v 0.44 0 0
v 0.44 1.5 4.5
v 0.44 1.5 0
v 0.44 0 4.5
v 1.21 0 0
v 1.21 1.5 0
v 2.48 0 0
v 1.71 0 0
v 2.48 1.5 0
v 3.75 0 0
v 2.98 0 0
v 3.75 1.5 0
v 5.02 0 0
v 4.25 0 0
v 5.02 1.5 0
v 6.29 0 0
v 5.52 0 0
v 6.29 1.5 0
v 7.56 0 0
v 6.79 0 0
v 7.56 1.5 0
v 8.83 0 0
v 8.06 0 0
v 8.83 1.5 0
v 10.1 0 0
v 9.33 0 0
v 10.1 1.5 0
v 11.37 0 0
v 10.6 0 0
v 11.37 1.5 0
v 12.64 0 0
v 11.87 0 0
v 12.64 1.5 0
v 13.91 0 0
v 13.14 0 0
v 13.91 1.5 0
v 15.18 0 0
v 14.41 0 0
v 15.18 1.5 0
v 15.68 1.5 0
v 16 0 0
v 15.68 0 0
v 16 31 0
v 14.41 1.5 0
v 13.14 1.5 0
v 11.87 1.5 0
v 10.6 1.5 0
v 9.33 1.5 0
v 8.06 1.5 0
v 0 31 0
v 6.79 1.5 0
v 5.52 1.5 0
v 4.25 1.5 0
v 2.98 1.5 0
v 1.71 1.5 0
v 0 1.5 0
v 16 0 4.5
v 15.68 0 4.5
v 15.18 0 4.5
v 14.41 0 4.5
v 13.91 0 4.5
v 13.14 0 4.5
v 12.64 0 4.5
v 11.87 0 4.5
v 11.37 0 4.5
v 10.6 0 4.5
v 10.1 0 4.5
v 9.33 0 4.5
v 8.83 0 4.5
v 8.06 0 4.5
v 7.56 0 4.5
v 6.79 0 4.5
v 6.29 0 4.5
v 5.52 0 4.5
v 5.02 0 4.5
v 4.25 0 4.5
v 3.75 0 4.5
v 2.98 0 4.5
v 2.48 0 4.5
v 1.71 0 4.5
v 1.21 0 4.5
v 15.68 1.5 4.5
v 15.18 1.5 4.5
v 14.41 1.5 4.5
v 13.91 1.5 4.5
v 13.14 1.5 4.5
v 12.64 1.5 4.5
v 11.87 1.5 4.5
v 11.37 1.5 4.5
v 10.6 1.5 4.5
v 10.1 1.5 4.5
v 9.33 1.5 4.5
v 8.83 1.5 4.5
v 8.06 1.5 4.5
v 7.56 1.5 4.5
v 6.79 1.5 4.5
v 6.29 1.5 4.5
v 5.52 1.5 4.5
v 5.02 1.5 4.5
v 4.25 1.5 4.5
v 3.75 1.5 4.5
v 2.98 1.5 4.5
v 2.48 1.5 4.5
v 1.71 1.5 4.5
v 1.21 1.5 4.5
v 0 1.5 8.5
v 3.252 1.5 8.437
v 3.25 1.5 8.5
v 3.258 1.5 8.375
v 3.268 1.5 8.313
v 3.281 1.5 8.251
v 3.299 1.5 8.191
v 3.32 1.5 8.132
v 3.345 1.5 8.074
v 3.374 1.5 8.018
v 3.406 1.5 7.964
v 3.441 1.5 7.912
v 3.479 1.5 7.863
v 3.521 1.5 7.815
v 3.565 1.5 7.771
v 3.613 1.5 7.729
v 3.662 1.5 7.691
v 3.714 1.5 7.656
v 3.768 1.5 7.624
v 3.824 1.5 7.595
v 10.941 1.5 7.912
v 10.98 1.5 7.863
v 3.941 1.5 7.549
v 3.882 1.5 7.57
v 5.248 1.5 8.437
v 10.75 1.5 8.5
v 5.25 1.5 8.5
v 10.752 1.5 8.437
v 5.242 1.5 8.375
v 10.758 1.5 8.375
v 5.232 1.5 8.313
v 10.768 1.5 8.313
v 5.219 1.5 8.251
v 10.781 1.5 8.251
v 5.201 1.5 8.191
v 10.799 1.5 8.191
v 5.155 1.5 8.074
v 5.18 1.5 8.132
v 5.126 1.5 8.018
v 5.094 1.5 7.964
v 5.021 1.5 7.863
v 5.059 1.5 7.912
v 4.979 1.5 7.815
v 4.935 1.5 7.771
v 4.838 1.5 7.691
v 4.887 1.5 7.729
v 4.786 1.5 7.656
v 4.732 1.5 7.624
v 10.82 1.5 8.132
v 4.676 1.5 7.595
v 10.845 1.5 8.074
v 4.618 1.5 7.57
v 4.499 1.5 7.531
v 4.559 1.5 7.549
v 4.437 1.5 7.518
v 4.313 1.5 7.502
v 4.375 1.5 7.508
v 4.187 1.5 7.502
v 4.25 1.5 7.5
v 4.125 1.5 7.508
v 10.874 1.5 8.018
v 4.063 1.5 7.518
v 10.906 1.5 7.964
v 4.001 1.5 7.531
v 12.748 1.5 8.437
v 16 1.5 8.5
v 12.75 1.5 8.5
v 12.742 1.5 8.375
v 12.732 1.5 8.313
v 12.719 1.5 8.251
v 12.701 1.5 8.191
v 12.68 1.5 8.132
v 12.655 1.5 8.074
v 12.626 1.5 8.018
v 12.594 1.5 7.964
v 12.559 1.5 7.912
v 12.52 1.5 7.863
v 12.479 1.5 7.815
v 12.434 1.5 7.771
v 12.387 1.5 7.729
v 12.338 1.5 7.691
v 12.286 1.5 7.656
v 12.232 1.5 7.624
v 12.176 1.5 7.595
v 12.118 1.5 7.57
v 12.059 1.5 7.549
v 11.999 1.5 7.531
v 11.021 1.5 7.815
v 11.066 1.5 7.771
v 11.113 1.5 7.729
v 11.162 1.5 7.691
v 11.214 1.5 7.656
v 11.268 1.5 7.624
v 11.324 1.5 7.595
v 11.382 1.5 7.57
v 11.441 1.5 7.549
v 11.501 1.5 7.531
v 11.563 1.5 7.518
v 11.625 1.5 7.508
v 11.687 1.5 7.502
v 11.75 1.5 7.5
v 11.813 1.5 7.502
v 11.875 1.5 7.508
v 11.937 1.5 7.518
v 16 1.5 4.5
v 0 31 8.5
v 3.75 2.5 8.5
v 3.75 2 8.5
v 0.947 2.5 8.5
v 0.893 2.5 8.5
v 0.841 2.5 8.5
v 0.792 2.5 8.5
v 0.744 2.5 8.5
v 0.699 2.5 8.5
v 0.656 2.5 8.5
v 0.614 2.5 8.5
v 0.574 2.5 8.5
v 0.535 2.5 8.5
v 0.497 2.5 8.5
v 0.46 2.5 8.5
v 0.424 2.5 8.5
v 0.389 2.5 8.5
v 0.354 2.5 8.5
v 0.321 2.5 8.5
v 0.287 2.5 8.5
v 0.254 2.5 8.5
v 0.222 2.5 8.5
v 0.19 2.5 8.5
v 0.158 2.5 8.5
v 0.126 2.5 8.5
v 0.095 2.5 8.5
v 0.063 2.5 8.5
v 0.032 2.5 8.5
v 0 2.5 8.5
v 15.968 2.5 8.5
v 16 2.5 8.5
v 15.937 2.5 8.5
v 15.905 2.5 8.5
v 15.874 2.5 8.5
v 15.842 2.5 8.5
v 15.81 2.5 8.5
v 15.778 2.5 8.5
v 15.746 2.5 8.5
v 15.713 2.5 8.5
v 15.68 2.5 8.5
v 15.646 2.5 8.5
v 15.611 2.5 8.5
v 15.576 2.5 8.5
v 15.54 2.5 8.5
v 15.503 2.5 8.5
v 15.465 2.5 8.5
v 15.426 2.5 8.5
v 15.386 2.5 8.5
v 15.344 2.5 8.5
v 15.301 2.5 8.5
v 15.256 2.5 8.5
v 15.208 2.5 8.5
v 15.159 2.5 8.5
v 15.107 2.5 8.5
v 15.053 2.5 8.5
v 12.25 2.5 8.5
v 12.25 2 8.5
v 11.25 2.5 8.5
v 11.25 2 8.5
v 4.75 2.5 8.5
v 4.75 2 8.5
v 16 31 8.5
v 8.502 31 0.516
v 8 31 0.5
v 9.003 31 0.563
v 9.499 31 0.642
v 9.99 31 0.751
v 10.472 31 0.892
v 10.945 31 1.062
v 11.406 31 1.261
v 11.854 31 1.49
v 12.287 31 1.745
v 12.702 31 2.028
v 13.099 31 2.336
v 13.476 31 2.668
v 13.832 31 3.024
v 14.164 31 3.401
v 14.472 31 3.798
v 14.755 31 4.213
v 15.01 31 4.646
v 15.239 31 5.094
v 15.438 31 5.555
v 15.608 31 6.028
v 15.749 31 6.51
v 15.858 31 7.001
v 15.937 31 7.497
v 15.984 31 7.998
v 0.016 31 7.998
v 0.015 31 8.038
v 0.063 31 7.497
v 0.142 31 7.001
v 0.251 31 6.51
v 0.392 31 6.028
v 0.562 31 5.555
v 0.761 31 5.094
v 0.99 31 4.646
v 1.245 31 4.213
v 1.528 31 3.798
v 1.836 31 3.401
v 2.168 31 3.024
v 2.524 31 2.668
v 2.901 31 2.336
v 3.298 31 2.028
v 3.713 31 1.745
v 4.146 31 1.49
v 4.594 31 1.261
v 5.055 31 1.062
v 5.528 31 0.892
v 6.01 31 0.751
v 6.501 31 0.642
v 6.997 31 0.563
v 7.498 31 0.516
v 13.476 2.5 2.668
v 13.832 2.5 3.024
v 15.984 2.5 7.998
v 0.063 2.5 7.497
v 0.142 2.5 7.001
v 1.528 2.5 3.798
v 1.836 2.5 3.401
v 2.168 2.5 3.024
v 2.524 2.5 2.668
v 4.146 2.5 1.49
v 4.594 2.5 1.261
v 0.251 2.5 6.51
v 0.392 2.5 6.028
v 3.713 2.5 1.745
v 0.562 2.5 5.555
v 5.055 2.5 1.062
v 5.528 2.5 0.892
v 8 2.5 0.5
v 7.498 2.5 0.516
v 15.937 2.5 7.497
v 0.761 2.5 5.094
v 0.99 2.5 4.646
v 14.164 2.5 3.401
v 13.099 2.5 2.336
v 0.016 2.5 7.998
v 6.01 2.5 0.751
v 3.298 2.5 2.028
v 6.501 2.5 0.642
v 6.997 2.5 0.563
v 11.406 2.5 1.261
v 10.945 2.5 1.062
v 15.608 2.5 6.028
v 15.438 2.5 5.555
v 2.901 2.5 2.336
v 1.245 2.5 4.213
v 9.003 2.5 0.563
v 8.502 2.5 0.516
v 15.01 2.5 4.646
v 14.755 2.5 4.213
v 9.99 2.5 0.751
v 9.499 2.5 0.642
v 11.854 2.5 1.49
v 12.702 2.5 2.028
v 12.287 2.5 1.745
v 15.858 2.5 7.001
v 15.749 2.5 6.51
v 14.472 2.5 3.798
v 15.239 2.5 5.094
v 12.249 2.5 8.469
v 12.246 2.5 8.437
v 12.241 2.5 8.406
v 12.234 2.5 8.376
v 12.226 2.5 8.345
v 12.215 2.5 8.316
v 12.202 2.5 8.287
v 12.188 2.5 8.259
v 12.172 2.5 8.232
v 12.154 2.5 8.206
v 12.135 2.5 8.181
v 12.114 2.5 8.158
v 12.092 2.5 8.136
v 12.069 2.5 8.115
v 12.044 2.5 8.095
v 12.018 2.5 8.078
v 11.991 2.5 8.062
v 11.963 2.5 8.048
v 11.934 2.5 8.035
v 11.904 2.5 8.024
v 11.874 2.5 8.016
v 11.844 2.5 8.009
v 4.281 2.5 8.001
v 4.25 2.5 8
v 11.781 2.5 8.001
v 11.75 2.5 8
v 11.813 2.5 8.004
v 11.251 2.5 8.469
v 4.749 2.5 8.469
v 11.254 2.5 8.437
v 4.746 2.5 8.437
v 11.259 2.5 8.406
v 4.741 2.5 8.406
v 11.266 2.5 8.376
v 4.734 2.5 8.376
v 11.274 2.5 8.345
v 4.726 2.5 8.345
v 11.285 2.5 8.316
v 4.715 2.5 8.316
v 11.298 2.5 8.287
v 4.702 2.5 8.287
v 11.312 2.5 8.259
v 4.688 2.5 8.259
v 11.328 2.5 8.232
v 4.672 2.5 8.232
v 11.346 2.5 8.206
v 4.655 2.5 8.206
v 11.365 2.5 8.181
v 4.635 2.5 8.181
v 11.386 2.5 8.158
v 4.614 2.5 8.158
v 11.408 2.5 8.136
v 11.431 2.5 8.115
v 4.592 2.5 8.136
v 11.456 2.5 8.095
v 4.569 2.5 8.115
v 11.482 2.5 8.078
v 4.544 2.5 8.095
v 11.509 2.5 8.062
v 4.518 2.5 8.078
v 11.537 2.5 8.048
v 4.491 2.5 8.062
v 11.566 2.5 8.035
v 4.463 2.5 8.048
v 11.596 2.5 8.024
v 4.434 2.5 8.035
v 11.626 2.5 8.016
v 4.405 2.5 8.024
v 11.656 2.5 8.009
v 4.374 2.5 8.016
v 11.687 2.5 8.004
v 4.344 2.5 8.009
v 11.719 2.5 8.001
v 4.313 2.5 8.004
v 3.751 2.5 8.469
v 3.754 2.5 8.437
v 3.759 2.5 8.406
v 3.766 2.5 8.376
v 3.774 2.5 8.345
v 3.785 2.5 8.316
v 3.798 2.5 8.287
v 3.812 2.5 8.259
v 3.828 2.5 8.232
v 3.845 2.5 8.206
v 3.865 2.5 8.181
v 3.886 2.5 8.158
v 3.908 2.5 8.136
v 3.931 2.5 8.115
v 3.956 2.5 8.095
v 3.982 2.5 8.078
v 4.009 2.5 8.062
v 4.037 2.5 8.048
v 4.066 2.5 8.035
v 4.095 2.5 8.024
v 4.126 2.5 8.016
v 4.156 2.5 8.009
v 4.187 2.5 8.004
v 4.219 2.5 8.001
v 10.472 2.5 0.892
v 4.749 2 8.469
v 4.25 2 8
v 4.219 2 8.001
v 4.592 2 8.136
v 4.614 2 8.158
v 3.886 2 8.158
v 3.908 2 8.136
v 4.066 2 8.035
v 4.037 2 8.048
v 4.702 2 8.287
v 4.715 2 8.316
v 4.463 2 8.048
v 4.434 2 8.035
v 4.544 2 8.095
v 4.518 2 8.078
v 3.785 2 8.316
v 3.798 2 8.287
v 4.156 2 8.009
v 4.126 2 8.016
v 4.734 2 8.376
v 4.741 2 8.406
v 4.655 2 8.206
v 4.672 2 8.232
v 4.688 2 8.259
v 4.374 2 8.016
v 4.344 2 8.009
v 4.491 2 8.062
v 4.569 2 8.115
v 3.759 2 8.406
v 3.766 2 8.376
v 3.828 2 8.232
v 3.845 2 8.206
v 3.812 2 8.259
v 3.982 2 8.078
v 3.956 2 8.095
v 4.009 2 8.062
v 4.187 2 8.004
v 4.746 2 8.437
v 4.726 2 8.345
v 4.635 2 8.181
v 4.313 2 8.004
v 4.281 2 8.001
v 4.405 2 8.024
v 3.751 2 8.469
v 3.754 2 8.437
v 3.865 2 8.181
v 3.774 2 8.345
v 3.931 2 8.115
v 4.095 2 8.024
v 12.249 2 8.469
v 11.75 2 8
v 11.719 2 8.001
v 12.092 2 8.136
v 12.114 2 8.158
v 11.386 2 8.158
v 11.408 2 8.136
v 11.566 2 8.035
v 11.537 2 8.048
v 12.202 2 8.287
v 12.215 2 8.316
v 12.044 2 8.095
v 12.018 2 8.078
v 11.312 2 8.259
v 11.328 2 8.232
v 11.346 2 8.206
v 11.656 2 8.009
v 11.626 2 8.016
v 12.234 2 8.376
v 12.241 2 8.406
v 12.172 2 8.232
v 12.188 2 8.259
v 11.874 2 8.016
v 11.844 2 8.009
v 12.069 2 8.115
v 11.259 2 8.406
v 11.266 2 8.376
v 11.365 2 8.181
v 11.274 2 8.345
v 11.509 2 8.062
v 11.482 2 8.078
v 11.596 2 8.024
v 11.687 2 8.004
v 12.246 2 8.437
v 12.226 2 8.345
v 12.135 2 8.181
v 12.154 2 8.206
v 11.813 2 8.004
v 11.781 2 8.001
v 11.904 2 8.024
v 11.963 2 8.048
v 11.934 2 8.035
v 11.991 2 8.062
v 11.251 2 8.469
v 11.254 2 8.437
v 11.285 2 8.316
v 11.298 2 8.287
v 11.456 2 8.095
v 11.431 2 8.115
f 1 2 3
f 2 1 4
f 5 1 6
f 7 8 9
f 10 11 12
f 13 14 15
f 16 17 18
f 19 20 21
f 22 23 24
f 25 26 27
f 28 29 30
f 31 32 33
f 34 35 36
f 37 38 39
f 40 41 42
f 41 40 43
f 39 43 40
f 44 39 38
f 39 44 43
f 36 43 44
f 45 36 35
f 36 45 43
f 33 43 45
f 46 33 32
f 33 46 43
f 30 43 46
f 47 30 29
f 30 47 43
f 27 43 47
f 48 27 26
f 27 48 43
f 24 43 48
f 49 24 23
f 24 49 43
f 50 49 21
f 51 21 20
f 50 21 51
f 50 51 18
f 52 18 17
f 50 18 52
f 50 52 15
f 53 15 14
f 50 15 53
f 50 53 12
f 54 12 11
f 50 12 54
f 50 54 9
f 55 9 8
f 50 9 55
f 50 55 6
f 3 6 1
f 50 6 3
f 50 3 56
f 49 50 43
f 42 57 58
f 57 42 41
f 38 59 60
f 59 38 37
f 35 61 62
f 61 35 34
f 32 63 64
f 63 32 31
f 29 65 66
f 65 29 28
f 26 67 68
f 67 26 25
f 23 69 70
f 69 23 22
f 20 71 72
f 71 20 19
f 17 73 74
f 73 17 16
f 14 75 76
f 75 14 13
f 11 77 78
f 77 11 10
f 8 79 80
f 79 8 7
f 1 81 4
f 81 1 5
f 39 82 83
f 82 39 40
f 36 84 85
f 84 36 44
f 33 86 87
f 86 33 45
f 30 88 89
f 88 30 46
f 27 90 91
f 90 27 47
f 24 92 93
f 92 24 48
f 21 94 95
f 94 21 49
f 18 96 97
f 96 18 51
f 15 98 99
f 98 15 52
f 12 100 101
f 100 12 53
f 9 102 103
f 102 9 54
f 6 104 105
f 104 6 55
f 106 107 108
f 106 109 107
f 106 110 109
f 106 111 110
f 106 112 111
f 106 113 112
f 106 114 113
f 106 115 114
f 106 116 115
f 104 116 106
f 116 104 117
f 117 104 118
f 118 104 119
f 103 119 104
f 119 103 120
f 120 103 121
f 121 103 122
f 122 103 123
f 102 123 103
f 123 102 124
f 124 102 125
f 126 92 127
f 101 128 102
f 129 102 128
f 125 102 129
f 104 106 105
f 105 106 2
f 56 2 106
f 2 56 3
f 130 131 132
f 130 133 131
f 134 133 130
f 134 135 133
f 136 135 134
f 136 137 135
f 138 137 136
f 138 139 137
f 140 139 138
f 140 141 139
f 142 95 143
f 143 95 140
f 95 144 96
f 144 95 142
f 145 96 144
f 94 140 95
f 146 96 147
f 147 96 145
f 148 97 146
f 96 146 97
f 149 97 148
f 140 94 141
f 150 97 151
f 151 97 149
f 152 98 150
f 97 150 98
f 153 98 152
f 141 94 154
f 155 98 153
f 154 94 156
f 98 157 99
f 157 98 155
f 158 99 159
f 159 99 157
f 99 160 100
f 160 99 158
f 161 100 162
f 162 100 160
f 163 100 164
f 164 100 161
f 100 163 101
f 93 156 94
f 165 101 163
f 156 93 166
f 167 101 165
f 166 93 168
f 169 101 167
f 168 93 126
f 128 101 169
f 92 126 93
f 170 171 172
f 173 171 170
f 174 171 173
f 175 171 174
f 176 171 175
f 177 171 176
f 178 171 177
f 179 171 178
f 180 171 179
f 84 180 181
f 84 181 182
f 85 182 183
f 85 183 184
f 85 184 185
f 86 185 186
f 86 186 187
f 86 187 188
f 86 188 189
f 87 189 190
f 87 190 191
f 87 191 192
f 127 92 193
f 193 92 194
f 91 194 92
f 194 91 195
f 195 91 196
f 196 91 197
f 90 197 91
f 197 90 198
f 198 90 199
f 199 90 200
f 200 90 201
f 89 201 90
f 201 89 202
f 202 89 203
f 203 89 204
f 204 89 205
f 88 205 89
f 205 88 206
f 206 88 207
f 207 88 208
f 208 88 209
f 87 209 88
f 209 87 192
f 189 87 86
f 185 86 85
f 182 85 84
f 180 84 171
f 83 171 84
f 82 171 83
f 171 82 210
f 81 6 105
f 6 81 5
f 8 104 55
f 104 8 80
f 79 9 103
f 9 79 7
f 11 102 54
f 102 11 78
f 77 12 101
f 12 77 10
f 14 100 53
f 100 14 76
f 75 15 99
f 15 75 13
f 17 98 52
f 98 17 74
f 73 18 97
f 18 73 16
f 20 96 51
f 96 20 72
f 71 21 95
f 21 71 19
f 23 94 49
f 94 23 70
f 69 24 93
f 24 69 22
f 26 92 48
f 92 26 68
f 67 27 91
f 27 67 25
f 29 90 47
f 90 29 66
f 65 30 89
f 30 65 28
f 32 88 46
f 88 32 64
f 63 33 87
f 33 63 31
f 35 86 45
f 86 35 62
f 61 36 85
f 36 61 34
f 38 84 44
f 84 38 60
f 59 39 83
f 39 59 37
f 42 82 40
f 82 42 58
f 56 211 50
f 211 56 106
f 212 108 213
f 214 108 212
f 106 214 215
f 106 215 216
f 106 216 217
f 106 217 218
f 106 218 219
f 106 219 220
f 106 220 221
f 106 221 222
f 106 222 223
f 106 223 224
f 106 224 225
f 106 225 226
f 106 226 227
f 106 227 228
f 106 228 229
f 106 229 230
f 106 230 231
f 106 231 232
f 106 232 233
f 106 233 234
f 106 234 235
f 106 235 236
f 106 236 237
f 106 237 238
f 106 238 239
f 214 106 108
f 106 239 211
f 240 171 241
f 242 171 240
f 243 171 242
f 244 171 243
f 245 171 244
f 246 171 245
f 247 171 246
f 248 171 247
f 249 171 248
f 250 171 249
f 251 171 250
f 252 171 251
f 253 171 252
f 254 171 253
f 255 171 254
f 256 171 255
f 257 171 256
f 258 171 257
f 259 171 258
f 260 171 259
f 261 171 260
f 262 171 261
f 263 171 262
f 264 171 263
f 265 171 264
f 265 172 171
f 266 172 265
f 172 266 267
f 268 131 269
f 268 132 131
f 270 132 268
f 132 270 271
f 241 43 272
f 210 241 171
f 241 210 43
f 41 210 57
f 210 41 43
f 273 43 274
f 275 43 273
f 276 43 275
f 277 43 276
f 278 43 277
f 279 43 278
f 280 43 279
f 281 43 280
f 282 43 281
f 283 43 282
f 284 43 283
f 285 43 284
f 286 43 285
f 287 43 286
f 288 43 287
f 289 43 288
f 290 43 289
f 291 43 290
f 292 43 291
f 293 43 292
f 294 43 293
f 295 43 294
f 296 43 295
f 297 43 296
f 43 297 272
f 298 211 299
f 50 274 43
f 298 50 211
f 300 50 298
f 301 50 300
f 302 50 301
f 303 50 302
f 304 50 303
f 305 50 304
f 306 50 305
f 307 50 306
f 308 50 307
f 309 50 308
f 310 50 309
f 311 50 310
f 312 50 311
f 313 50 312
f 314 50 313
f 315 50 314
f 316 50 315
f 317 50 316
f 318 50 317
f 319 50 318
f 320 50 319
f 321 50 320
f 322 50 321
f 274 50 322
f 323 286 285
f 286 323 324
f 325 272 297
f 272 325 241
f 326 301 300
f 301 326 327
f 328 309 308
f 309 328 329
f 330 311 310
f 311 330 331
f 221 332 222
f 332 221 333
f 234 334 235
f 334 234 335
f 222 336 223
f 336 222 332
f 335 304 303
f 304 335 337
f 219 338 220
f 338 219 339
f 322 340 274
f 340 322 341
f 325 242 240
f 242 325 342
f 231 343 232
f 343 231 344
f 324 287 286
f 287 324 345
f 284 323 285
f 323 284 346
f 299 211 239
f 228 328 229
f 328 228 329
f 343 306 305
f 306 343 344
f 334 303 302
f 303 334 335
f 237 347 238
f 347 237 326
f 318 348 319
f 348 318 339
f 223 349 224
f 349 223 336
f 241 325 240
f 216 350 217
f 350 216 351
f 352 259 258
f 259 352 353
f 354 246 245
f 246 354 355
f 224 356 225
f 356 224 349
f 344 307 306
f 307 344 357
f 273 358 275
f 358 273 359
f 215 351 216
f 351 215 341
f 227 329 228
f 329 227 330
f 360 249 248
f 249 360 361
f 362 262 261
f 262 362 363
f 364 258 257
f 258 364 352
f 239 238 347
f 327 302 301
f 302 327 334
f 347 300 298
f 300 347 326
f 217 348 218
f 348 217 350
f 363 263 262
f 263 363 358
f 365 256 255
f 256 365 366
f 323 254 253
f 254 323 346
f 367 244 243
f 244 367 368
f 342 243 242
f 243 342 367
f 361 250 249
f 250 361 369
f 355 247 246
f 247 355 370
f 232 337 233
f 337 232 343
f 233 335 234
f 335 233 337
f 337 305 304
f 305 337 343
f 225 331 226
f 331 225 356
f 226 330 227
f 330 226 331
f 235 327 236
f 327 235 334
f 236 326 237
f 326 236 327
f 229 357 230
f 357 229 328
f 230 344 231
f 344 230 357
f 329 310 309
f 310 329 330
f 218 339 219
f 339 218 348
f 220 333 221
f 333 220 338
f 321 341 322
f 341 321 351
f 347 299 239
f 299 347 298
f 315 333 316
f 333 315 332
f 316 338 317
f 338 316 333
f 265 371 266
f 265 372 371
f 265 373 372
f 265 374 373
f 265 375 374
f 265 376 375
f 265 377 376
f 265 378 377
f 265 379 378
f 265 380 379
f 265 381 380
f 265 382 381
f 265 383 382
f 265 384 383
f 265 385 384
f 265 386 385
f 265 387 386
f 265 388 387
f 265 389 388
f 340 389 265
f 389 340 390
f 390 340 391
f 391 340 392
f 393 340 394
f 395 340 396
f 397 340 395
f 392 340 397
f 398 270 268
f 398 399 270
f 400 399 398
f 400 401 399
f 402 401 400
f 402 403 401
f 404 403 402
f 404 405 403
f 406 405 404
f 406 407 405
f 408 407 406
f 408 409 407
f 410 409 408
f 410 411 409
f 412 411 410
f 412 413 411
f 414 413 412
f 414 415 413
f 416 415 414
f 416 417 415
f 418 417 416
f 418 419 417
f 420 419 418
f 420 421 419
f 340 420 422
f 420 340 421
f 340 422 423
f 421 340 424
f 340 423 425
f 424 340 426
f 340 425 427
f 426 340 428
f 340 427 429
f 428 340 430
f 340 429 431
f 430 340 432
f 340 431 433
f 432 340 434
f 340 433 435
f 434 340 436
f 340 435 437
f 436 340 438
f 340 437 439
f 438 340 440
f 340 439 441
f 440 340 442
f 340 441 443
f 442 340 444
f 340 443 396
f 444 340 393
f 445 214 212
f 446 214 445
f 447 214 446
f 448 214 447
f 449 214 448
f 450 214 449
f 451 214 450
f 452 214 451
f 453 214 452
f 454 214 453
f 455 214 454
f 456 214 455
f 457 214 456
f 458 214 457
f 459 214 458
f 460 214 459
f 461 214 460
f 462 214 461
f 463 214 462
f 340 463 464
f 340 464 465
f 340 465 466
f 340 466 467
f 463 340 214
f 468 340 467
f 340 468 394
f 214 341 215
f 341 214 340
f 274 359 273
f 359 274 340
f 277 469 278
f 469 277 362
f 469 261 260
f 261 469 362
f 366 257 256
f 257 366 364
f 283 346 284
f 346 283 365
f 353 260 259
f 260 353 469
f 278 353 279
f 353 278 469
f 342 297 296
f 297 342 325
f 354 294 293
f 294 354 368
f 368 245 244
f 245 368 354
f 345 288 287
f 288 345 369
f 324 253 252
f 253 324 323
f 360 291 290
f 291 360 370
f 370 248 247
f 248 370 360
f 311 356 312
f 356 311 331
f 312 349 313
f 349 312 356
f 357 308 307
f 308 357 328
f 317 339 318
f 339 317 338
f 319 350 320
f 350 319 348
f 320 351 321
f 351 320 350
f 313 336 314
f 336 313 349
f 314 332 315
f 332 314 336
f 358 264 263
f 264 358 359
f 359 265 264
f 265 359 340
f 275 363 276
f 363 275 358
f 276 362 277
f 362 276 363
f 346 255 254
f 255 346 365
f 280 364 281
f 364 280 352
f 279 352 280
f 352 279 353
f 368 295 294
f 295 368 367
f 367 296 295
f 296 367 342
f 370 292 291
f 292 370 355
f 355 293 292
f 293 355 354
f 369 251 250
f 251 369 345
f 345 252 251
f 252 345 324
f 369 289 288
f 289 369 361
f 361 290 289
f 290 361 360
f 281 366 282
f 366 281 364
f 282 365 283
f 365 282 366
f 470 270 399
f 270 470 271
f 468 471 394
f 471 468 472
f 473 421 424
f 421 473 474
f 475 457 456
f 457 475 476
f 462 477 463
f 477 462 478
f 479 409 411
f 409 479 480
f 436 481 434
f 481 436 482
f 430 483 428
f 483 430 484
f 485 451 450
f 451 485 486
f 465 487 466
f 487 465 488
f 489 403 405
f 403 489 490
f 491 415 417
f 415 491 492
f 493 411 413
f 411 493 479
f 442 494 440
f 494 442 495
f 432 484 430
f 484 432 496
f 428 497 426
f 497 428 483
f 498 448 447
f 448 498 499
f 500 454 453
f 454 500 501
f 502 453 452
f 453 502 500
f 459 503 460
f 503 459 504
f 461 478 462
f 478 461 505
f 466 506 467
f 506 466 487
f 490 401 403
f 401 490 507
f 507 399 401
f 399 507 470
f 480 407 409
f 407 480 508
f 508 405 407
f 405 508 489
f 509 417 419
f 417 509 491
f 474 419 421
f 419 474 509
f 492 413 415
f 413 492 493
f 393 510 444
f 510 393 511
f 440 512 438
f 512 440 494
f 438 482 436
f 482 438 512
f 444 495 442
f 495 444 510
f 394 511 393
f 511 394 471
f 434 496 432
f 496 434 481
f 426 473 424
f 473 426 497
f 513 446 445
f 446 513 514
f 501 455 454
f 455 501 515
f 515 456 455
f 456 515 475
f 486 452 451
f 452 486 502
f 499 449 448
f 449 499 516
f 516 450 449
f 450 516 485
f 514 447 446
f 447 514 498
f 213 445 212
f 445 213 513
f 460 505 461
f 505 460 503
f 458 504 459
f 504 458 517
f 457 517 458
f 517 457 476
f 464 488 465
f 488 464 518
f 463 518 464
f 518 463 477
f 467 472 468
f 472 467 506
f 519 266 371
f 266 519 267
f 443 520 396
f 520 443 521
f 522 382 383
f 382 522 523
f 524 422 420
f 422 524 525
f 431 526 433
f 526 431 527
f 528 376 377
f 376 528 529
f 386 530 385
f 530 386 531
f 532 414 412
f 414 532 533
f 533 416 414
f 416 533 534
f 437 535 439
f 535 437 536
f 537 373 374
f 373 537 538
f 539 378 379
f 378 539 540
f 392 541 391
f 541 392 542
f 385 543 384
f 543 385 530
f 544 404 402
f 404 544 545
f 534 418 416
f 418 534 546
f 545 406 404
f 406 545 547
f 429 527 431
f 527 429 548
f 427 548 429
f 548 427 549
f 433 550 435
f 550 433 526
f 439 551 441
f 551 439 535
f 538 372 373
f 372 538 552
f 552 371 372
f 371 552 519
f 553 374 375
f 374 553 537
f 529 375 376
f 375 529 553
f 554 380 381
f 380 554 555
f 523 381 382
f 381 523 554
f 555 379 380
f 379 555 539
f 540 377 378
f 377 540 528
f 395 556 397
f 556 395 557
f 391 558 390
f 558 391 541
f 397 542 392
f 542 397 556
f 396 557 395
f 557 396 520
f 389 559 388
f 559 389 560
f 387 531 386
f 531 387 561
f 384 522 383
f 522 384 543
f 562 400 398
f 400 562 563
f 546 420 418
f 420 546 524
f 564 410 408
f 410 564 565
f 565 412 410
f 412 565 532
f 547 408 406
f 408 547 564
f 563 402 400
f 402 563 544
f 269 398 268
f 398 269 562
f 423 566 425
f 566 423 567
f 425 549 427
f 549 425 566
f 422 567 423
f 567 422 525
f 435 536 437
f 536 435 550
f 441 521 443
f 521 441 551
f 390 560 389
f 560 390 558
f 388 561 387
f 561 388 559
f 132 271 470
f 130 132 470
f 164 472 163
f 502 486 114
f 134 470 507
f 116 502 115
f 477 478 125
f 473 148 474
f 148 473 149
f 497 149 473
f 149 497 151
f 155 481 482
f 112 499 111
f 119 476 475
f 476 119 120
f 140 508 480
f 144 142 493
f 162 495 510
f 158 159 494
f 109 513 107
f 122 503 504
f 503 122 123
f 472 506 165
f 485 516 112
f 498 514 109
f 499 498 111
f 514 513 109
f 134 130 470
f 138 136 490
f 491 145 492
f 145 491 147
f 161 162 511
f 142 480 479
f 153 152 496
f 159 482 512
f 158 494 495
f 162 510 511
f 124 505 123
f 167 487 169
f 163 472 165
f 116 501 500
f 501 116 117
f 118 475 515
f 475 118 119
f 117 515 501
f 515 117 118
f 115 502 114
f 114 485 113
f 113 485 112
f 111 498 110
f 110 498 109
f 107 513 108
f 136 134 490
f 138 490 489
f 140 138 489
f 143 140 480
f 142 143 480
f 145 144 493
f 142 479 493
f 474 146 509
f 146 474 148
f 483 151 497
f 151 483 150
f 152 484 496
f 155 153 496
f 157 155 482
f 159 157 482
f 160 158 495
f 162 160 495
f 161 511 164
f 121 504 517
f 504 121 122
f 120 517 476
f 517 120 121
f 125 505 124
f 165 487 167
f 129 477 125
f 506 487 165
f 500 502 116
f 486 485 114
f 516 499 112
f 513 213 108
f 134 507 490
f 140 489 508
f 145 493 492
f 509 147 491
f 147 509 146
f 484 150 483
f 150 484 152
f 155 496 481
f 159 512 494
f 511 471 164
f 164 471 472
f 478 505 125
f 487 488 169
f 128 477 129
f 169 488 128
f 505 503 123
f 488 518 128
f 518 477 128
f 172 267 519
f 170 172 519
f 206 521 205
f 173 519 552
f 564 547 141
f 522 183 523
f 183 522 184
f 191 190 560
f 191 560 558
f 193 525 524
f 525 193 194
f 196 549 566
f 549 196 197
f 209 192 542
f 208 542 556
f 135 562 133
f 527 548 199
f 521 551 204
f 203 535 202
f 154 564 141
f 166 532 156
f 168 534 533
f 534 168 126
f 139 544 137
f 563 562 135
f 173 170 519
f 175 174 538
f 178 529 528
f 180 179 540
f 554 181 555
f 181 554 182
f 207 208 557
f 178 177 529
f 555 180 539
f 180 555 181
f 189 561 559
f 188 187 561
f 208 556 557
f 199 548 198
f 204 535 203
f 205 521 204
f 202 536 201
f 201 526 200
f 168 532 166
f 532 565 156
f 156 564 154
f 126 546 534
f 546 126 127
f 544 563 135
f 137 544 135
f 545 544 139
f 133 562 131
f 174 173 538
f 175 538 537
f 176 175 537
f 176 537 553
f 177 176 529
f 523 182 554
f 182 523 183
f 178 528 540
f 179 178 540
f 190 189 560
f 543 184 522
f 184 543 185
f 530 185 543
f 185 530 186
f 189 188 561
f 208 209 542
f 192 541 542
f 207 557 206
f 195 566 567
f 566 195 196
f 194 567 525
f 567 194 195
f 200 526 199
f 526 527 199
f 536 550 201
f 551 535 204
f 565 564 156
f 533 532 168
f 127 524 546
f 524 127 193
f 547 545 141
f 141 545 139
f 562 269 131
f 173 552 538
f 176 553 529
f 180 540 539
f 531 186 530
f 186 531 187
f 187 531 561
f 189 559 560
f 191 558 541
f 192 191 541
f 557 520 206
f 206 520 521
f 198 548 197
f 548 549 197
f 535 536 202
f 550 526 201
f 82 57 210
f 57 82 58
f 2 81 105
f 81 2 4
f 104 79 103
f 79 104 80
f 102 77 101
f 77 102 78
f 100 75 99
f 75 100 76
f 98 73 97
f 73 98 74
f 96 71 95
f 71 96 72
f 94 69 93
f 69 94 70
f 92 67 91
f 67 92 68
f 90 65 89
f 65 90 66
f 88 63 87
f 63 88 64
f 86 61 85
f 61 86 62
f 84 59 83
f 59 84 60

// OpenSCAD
$fn=100;


// https://docs-apac.rs-online.com/webdocs/14e3/0900766b814e39c2.pdf

/** Capacitor Spec **/

// Capacitor Diameter
capd=16;

// Capacitor Length
capl=31;

// Capacitor Pin Spacing
cap_pin_spacing=7.5;


/** Object Spec **/
base_h=0.5;
leg_guide=1.5;


cap_radius=capd/2;

difference()
{
    cube([capd,capl,cap_radius+base_h]);
    
    // Cap Guide
    translate([cap_radius,leg_guide+1,cap_radius+base_h])
    rotate([-90,0,0])
    cylinder(r=capd/2, h=capl);
    
    // Cap Pin
    translate([cap_radius-cap_pin_spacing/2,leg_guide,cap_radius+base_h])
    rotate([-90,0,0])
    cylinder(r=0.5, h=4);
    
    translate([cap_radius+cap_pin_spacing/2,leg_guide,cap_radius+base_h])
    rotate([-90,0,0])
    cylinder(r=0.5, h=4);
    
    // Cap Bevel
    translate([cap_radius-cap_pin_spacing/2,leg_guide,cap_radius+base_h])
    rotate([-90,0,0])
    cylinder(r1=1, r2=0.5, h=0.5);
    
    translate([cap_radius+cap_pin_spacing/2,leg_guide,cap_radius+base_h])
    rotate([-90,0,0])
    cylinder(r1=1, r2=0.5, h=0.5);
    
    // Jig Ledge
    translate([0,0,base_h+cap_radius/2])
    cube([capd,leg_guide,cap_radius+base_h]);

    for(i=[-3:10])
    {
      translate([cap_radius-cap_pin_spacing/2+i*2.54/2 - 1/2,0,0])
      cube([1/2,leg_guide,base_h+100]);
    }
}
